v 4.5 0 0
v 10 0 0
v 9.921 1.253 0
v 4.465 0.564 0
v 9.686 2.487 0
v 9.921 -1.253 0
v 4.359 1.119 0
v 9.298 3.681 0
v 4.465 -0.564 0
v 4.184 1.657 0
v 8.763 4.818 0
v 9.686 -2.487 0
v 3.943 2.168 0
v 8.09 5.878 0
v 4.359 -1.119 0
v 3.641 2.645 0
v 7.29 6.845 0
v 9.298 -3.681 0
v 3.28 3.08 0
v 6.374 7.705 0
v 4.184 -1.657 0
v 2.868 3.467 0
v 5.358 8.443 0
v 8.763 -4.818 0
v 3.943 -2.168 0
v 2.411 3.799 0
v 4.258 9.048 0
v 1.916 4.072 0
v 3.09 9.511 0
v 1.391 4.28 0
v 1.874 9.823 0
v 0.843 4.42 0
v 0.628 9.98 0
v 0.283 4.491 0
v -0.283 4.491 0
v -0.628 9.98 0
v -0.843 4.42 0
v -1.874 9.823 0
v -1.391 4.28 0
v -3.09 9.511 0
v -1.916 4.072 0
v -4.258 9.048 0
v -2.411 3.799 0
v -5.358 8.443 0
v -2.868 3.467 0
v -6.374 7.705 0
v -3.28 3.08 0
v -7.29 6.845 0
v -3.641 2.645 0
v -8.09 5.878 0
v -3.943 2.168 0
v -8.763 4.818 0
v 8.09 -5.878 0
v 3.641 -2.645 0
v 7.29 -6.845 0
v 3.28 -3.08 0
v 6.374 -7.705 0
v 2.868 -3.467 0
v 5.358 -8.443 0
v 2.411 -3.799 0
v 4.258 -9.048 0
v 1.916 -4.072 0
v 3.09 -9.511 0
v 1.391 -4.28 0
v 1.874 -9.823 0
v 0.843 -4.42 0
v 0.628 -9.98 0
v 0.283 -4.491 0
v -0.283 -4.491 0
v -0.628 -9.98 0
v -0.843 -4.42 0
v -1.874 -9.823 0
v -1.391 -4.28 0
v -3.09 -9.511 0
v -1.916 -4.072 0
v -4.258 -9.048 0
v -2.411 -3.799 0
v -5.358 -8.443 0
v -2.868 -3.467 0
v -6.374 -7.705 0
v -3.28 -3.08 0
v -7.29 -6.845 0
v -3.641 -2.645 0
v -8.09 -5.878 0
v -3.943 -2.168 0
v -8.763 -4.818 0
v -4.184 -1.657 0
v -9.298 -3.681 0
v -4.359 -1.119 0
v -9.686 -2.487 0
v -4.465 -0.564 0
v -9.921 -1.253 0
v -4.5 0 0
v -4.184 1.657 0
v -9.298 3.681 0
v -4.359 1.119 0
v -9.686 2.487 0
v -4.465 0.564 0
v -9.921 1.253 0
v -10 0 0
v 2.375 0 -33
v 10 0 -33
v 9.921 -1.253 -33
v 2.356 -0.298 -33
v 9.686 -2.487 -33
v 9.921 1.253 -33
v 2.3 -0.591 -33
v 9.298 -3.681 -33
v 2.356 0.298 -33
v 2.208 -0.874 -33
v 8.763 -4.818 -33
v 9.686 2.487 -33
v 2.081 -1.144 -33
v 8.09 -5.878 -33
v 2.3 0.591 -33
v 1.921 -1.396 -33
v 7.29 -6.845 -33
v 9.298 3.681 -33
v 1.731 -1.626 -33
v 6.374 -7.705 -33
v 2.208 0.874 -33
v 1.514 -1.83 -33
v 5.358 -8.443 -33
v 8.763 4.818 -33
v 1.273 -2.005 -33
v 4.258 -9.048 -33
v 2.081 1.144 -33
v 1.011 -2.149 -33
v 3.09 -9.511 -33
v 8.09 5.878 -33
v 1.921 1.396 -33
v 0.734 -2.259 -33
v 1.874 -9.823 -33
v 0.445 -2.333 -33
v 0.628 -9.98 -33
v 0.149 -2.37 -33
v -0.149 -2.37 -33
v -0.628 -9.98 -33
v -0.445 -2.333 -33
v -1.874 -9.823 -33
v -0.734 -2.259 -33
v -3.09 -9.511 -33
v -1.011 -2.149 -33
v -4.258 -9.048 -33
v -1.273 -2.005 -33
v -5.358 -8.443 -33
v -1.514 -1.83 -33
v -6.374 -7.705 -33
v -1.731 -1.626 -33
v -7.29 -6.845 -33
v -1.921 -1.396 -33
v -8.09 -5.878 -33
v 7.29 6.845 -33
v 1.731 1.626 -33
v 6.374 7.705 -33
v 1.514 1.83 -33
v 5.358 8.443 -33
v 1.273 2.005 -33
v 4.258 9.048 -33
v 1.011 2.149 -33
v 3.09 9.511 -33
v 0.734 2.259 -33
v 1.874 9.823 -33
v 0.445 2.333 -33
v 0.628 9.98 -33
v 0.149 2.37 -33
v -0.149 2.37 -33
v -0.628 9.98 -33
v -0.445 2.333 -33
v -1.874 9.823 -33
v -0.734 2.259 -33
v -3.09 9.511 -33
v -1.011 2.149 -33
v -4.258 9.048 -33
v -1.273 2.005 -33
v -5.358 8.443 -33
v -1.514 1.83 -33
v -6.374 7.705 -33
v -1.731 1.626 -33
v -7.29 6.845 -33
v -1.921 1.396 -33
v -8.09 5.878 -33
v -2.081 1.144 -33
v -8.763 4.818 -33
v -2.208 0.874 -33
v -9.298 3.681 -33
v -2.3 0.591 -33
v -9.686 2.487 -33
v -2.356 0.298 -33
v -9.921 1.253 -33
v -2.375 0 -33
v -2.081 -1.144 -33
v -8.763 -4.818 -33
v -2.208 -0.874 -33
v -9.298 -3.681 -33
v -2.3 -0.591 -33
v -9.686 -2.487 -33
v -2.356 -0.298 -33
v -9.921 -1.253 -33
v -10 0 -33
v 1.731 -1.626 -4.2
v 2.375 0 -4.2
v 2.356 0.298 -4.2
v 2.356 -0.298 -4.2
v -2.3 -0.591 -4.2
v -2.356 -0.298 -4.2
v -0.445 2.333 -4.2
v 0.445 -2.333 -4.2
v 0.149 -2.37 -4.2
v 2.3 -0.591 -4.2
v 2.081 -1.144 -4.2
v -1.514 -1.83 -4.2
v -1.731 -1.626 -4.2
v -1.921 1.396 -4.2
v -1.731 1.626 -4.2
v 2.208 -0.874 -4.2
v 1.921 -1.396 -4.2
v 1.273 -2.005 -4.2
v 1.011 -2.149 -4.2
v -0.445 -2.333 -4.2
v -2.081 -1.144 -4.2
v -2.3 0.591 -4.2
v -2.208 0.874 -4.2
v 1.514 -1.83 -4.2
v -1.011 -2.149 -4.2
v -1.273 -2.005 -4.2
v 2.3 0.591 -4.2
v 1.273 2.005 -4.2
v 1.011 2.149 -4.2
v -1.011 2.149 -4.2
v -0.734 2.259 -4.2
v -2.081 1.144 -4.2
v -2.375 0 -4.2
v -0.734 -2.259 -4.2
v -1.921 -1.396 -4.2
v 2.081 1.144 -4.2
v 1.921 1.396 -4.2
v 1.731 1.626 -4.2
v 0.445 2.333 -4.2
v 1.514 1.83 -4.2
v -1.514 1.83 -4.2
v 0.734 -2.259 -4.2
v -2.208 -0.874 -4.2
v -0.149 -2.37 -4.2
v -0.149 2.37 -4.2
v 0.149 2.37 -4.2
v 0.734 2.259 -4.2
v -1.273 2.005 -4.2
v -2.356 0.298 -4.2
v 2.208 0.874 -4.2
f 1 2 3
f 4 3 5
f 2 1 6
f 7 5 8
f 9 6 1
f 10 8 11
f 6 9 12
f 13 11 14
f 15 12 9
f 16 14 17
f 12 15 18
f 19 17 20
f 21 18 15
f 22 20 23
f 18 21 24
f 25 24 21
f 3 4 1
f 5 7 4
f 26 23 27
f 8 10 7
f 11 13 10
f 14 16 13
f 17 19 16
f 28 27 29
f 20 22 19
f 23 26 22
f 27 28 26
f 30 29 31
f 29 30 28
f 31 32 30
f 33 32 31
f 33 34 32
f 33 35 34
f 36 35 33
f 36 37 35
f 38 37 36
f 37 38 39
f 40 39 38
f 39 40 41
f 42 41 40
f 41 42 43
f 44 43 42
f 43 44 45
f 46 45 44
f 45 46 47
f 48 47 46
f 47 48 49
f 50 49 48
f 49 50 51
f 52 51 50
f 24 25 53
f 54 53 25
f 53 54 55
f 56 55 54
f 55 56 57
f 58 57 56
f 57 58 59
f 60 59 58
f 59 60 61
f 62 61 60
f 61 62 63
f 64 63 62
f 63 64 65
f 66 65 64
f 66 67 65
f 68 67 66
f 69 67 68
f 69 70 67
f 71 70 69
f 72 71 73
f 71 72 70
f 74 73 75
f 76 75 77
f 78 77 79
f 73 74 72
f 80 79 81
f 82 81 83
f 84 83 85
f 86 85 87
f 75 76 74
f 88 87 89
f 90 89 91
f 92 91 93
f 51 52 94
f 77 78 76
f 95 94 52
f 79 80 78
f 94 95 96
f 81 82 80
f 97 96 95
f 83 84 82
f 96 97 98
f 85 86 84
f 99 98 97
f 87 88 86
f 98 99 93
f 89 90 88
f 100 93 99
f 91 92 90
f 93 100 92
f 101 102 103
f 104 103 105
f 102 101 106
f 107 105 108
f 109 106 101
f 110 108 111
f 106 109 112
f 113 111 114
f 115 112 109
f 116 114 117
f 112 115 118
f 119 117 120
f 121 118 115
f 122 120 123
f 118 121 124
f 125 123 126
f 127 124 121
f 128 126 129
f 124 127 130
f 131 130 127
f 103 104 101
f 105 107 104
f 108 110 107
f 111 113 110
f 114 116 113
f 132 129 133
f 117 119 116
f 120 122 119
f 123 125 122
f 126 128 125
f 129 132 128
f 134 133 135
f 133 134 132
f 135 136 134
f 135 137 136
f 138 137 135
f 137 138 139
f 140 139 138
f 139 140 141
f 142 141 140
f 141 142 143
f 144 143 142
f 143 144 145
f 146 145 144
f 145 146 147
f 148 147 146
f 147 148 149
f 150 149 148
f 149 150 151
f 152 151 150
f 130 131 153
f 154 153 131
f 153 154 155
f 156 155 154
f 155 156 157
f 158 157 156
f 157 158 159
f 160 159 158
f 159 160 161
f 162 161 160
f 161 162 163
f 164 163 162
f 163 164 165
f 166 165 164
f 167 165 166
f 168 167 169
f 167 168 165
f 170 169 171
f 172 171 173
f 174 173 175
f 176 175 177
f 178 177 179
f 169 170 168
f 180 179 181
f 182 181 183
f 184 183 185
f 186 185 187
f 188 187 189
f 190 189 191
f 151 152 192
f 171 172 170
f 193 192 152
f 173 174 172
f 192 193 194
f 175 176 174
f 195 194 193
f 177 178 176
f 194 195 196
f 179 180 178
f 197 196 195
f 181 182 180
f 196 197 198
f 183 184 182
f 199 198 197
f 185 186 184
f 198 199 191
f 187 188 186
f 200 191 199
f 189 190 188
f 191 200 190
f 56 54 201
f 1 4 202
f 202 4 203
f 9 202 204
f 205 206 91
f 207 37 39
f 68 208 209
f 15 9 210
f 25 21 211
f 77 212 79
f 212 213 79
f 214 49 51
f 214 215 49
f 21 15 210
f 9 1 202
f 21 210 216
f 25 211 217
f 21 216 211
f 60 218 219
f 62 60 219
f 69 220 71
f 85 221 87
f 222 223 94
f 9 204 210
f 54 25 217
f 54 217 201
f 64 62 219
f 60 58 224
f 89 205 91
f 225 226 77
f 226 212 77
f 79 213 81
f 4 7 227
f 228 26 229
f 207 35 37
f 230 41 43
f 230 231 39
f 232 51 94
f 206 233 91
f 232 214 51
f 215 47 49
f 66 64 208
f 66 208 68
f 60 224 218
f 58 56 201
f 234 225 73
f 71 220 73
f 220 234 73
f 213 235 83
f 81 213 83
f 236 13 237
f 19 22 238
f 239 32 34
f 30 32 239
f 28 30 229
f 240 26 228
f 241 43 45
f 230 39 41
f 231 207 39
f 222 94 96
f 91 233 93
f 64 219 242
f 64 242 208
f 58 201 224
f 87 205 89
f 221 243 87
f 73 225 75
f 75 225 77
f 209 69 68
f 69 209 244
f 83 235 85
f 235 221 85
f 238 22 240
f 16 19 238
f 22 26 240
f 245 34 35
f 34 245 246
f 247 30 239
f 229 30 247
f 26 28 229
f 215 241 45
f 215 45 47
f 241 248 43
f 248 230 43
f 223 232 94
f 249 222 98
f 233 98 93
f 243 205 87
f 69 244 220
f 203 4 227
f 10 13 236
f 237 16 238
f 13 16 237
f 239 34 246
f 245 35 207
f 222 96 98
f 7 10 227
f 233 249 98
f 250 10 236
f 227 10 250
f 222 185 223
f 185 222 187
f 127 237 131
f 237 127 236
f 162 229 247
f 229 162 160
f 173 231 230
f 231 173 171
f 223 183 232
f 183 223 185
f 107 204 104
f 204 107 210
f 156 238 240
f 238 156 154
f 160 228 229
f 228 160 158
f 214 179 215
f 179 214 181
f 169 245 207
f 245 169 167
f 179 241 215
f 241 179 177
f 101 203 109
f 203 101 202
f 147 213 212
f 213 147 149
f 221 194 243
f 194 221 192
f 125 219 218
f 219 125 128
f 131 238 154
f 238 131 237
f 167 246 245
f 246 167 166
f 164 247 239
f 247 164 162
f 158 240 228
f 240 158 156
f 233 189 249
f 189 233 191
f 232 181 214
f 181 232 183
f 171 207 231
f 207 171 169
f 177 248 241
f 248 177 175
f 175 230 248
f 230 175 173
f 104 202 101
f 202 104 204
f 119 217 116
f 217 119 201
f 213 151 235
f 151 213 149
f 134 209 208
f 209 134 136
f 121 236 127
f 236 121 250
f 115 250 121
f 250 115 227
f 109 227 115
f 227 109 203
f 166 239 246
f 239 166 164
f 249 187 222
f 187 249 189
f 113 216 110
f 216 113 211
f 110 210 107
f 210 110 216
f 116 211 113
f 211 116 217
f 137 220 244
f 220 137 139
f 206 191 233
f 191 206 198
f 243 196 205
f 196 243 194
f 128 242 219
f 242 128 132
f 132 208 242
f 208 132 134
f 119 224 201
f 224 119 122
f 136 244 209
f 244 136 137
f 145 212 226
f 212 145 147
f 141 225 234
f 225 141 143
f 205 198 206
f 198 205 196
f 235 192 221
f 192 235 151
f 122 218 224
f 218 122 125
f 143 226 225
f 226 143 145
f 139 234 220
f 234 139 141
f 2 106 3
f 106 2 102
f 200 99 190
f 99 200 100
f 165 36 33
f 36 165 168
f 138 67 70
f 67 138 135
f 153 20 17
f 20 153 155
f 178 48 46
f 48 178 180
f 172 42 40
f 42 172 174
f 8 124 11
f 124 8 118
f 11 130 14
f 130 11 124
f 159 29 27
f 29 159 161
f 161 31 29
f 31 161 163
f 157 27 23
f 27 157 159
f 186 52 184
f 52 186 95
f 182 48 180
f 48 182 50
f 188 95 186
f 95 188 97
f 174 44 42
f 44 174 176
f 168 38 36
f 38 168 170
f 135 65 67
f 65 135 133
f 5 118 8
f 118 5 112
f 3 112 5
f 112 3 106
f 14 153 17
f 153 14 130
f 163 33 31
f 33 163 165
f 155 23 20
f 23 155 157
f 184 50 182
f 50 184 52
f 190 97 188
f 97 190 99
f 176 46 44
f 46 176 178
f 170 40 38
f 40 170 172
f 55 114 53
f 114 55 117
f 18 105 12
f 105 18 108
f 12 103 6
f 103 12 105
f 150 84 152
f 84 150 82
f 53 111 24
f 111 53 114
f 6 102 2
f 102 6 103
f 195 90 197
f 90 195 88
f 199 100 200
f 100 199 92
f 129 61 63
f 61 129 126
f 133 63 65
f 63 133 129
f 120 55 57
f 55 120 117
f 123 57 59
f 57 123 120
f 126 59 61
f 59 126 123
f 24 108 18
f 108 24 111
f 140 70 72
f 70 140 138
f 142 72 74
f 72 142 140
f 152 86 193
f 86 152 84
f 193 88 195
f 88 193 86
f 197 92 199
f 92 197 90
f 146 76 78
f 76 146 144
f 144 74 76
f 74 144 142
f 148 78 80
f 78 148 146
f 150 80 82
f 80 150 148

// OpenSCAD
$fn = 50;


difference() {
	union() {
		translate(v = [0, 0, -33.0000000000]) {
			cylinder(h = 33, r = 10.0000000000);
		}
		cylinder(h = 0, r = 16.0000000000);
	}
	union() {
		translate(v = [0, 0, 0]) {
			rotate(a = [0, 0, 0]) {
				difference() {
					union() {
						#translate(v = [0, 0, -33.0000000000]) {
							cylinder(h = 33, r = 2.2500000000);
						}
						#translate(v = [0, 0, -4.2000000000]) {
							cylinder(h = 4.2000000000, r = 10.0000000000, r1 = 2.3750000000, r2 = 4.5000000000);
						}
						#translate(v = [0, 0, -33.0000000000]) {
							cylinder(h = 33, r = 2.3750000000);
						}
						#translate(v = [0, 0, -33.0000000000]) {
							cylinder(h = 33, r = 2.2500000000);
						}
					}
					union();
				}
			}
		}
	}
}
